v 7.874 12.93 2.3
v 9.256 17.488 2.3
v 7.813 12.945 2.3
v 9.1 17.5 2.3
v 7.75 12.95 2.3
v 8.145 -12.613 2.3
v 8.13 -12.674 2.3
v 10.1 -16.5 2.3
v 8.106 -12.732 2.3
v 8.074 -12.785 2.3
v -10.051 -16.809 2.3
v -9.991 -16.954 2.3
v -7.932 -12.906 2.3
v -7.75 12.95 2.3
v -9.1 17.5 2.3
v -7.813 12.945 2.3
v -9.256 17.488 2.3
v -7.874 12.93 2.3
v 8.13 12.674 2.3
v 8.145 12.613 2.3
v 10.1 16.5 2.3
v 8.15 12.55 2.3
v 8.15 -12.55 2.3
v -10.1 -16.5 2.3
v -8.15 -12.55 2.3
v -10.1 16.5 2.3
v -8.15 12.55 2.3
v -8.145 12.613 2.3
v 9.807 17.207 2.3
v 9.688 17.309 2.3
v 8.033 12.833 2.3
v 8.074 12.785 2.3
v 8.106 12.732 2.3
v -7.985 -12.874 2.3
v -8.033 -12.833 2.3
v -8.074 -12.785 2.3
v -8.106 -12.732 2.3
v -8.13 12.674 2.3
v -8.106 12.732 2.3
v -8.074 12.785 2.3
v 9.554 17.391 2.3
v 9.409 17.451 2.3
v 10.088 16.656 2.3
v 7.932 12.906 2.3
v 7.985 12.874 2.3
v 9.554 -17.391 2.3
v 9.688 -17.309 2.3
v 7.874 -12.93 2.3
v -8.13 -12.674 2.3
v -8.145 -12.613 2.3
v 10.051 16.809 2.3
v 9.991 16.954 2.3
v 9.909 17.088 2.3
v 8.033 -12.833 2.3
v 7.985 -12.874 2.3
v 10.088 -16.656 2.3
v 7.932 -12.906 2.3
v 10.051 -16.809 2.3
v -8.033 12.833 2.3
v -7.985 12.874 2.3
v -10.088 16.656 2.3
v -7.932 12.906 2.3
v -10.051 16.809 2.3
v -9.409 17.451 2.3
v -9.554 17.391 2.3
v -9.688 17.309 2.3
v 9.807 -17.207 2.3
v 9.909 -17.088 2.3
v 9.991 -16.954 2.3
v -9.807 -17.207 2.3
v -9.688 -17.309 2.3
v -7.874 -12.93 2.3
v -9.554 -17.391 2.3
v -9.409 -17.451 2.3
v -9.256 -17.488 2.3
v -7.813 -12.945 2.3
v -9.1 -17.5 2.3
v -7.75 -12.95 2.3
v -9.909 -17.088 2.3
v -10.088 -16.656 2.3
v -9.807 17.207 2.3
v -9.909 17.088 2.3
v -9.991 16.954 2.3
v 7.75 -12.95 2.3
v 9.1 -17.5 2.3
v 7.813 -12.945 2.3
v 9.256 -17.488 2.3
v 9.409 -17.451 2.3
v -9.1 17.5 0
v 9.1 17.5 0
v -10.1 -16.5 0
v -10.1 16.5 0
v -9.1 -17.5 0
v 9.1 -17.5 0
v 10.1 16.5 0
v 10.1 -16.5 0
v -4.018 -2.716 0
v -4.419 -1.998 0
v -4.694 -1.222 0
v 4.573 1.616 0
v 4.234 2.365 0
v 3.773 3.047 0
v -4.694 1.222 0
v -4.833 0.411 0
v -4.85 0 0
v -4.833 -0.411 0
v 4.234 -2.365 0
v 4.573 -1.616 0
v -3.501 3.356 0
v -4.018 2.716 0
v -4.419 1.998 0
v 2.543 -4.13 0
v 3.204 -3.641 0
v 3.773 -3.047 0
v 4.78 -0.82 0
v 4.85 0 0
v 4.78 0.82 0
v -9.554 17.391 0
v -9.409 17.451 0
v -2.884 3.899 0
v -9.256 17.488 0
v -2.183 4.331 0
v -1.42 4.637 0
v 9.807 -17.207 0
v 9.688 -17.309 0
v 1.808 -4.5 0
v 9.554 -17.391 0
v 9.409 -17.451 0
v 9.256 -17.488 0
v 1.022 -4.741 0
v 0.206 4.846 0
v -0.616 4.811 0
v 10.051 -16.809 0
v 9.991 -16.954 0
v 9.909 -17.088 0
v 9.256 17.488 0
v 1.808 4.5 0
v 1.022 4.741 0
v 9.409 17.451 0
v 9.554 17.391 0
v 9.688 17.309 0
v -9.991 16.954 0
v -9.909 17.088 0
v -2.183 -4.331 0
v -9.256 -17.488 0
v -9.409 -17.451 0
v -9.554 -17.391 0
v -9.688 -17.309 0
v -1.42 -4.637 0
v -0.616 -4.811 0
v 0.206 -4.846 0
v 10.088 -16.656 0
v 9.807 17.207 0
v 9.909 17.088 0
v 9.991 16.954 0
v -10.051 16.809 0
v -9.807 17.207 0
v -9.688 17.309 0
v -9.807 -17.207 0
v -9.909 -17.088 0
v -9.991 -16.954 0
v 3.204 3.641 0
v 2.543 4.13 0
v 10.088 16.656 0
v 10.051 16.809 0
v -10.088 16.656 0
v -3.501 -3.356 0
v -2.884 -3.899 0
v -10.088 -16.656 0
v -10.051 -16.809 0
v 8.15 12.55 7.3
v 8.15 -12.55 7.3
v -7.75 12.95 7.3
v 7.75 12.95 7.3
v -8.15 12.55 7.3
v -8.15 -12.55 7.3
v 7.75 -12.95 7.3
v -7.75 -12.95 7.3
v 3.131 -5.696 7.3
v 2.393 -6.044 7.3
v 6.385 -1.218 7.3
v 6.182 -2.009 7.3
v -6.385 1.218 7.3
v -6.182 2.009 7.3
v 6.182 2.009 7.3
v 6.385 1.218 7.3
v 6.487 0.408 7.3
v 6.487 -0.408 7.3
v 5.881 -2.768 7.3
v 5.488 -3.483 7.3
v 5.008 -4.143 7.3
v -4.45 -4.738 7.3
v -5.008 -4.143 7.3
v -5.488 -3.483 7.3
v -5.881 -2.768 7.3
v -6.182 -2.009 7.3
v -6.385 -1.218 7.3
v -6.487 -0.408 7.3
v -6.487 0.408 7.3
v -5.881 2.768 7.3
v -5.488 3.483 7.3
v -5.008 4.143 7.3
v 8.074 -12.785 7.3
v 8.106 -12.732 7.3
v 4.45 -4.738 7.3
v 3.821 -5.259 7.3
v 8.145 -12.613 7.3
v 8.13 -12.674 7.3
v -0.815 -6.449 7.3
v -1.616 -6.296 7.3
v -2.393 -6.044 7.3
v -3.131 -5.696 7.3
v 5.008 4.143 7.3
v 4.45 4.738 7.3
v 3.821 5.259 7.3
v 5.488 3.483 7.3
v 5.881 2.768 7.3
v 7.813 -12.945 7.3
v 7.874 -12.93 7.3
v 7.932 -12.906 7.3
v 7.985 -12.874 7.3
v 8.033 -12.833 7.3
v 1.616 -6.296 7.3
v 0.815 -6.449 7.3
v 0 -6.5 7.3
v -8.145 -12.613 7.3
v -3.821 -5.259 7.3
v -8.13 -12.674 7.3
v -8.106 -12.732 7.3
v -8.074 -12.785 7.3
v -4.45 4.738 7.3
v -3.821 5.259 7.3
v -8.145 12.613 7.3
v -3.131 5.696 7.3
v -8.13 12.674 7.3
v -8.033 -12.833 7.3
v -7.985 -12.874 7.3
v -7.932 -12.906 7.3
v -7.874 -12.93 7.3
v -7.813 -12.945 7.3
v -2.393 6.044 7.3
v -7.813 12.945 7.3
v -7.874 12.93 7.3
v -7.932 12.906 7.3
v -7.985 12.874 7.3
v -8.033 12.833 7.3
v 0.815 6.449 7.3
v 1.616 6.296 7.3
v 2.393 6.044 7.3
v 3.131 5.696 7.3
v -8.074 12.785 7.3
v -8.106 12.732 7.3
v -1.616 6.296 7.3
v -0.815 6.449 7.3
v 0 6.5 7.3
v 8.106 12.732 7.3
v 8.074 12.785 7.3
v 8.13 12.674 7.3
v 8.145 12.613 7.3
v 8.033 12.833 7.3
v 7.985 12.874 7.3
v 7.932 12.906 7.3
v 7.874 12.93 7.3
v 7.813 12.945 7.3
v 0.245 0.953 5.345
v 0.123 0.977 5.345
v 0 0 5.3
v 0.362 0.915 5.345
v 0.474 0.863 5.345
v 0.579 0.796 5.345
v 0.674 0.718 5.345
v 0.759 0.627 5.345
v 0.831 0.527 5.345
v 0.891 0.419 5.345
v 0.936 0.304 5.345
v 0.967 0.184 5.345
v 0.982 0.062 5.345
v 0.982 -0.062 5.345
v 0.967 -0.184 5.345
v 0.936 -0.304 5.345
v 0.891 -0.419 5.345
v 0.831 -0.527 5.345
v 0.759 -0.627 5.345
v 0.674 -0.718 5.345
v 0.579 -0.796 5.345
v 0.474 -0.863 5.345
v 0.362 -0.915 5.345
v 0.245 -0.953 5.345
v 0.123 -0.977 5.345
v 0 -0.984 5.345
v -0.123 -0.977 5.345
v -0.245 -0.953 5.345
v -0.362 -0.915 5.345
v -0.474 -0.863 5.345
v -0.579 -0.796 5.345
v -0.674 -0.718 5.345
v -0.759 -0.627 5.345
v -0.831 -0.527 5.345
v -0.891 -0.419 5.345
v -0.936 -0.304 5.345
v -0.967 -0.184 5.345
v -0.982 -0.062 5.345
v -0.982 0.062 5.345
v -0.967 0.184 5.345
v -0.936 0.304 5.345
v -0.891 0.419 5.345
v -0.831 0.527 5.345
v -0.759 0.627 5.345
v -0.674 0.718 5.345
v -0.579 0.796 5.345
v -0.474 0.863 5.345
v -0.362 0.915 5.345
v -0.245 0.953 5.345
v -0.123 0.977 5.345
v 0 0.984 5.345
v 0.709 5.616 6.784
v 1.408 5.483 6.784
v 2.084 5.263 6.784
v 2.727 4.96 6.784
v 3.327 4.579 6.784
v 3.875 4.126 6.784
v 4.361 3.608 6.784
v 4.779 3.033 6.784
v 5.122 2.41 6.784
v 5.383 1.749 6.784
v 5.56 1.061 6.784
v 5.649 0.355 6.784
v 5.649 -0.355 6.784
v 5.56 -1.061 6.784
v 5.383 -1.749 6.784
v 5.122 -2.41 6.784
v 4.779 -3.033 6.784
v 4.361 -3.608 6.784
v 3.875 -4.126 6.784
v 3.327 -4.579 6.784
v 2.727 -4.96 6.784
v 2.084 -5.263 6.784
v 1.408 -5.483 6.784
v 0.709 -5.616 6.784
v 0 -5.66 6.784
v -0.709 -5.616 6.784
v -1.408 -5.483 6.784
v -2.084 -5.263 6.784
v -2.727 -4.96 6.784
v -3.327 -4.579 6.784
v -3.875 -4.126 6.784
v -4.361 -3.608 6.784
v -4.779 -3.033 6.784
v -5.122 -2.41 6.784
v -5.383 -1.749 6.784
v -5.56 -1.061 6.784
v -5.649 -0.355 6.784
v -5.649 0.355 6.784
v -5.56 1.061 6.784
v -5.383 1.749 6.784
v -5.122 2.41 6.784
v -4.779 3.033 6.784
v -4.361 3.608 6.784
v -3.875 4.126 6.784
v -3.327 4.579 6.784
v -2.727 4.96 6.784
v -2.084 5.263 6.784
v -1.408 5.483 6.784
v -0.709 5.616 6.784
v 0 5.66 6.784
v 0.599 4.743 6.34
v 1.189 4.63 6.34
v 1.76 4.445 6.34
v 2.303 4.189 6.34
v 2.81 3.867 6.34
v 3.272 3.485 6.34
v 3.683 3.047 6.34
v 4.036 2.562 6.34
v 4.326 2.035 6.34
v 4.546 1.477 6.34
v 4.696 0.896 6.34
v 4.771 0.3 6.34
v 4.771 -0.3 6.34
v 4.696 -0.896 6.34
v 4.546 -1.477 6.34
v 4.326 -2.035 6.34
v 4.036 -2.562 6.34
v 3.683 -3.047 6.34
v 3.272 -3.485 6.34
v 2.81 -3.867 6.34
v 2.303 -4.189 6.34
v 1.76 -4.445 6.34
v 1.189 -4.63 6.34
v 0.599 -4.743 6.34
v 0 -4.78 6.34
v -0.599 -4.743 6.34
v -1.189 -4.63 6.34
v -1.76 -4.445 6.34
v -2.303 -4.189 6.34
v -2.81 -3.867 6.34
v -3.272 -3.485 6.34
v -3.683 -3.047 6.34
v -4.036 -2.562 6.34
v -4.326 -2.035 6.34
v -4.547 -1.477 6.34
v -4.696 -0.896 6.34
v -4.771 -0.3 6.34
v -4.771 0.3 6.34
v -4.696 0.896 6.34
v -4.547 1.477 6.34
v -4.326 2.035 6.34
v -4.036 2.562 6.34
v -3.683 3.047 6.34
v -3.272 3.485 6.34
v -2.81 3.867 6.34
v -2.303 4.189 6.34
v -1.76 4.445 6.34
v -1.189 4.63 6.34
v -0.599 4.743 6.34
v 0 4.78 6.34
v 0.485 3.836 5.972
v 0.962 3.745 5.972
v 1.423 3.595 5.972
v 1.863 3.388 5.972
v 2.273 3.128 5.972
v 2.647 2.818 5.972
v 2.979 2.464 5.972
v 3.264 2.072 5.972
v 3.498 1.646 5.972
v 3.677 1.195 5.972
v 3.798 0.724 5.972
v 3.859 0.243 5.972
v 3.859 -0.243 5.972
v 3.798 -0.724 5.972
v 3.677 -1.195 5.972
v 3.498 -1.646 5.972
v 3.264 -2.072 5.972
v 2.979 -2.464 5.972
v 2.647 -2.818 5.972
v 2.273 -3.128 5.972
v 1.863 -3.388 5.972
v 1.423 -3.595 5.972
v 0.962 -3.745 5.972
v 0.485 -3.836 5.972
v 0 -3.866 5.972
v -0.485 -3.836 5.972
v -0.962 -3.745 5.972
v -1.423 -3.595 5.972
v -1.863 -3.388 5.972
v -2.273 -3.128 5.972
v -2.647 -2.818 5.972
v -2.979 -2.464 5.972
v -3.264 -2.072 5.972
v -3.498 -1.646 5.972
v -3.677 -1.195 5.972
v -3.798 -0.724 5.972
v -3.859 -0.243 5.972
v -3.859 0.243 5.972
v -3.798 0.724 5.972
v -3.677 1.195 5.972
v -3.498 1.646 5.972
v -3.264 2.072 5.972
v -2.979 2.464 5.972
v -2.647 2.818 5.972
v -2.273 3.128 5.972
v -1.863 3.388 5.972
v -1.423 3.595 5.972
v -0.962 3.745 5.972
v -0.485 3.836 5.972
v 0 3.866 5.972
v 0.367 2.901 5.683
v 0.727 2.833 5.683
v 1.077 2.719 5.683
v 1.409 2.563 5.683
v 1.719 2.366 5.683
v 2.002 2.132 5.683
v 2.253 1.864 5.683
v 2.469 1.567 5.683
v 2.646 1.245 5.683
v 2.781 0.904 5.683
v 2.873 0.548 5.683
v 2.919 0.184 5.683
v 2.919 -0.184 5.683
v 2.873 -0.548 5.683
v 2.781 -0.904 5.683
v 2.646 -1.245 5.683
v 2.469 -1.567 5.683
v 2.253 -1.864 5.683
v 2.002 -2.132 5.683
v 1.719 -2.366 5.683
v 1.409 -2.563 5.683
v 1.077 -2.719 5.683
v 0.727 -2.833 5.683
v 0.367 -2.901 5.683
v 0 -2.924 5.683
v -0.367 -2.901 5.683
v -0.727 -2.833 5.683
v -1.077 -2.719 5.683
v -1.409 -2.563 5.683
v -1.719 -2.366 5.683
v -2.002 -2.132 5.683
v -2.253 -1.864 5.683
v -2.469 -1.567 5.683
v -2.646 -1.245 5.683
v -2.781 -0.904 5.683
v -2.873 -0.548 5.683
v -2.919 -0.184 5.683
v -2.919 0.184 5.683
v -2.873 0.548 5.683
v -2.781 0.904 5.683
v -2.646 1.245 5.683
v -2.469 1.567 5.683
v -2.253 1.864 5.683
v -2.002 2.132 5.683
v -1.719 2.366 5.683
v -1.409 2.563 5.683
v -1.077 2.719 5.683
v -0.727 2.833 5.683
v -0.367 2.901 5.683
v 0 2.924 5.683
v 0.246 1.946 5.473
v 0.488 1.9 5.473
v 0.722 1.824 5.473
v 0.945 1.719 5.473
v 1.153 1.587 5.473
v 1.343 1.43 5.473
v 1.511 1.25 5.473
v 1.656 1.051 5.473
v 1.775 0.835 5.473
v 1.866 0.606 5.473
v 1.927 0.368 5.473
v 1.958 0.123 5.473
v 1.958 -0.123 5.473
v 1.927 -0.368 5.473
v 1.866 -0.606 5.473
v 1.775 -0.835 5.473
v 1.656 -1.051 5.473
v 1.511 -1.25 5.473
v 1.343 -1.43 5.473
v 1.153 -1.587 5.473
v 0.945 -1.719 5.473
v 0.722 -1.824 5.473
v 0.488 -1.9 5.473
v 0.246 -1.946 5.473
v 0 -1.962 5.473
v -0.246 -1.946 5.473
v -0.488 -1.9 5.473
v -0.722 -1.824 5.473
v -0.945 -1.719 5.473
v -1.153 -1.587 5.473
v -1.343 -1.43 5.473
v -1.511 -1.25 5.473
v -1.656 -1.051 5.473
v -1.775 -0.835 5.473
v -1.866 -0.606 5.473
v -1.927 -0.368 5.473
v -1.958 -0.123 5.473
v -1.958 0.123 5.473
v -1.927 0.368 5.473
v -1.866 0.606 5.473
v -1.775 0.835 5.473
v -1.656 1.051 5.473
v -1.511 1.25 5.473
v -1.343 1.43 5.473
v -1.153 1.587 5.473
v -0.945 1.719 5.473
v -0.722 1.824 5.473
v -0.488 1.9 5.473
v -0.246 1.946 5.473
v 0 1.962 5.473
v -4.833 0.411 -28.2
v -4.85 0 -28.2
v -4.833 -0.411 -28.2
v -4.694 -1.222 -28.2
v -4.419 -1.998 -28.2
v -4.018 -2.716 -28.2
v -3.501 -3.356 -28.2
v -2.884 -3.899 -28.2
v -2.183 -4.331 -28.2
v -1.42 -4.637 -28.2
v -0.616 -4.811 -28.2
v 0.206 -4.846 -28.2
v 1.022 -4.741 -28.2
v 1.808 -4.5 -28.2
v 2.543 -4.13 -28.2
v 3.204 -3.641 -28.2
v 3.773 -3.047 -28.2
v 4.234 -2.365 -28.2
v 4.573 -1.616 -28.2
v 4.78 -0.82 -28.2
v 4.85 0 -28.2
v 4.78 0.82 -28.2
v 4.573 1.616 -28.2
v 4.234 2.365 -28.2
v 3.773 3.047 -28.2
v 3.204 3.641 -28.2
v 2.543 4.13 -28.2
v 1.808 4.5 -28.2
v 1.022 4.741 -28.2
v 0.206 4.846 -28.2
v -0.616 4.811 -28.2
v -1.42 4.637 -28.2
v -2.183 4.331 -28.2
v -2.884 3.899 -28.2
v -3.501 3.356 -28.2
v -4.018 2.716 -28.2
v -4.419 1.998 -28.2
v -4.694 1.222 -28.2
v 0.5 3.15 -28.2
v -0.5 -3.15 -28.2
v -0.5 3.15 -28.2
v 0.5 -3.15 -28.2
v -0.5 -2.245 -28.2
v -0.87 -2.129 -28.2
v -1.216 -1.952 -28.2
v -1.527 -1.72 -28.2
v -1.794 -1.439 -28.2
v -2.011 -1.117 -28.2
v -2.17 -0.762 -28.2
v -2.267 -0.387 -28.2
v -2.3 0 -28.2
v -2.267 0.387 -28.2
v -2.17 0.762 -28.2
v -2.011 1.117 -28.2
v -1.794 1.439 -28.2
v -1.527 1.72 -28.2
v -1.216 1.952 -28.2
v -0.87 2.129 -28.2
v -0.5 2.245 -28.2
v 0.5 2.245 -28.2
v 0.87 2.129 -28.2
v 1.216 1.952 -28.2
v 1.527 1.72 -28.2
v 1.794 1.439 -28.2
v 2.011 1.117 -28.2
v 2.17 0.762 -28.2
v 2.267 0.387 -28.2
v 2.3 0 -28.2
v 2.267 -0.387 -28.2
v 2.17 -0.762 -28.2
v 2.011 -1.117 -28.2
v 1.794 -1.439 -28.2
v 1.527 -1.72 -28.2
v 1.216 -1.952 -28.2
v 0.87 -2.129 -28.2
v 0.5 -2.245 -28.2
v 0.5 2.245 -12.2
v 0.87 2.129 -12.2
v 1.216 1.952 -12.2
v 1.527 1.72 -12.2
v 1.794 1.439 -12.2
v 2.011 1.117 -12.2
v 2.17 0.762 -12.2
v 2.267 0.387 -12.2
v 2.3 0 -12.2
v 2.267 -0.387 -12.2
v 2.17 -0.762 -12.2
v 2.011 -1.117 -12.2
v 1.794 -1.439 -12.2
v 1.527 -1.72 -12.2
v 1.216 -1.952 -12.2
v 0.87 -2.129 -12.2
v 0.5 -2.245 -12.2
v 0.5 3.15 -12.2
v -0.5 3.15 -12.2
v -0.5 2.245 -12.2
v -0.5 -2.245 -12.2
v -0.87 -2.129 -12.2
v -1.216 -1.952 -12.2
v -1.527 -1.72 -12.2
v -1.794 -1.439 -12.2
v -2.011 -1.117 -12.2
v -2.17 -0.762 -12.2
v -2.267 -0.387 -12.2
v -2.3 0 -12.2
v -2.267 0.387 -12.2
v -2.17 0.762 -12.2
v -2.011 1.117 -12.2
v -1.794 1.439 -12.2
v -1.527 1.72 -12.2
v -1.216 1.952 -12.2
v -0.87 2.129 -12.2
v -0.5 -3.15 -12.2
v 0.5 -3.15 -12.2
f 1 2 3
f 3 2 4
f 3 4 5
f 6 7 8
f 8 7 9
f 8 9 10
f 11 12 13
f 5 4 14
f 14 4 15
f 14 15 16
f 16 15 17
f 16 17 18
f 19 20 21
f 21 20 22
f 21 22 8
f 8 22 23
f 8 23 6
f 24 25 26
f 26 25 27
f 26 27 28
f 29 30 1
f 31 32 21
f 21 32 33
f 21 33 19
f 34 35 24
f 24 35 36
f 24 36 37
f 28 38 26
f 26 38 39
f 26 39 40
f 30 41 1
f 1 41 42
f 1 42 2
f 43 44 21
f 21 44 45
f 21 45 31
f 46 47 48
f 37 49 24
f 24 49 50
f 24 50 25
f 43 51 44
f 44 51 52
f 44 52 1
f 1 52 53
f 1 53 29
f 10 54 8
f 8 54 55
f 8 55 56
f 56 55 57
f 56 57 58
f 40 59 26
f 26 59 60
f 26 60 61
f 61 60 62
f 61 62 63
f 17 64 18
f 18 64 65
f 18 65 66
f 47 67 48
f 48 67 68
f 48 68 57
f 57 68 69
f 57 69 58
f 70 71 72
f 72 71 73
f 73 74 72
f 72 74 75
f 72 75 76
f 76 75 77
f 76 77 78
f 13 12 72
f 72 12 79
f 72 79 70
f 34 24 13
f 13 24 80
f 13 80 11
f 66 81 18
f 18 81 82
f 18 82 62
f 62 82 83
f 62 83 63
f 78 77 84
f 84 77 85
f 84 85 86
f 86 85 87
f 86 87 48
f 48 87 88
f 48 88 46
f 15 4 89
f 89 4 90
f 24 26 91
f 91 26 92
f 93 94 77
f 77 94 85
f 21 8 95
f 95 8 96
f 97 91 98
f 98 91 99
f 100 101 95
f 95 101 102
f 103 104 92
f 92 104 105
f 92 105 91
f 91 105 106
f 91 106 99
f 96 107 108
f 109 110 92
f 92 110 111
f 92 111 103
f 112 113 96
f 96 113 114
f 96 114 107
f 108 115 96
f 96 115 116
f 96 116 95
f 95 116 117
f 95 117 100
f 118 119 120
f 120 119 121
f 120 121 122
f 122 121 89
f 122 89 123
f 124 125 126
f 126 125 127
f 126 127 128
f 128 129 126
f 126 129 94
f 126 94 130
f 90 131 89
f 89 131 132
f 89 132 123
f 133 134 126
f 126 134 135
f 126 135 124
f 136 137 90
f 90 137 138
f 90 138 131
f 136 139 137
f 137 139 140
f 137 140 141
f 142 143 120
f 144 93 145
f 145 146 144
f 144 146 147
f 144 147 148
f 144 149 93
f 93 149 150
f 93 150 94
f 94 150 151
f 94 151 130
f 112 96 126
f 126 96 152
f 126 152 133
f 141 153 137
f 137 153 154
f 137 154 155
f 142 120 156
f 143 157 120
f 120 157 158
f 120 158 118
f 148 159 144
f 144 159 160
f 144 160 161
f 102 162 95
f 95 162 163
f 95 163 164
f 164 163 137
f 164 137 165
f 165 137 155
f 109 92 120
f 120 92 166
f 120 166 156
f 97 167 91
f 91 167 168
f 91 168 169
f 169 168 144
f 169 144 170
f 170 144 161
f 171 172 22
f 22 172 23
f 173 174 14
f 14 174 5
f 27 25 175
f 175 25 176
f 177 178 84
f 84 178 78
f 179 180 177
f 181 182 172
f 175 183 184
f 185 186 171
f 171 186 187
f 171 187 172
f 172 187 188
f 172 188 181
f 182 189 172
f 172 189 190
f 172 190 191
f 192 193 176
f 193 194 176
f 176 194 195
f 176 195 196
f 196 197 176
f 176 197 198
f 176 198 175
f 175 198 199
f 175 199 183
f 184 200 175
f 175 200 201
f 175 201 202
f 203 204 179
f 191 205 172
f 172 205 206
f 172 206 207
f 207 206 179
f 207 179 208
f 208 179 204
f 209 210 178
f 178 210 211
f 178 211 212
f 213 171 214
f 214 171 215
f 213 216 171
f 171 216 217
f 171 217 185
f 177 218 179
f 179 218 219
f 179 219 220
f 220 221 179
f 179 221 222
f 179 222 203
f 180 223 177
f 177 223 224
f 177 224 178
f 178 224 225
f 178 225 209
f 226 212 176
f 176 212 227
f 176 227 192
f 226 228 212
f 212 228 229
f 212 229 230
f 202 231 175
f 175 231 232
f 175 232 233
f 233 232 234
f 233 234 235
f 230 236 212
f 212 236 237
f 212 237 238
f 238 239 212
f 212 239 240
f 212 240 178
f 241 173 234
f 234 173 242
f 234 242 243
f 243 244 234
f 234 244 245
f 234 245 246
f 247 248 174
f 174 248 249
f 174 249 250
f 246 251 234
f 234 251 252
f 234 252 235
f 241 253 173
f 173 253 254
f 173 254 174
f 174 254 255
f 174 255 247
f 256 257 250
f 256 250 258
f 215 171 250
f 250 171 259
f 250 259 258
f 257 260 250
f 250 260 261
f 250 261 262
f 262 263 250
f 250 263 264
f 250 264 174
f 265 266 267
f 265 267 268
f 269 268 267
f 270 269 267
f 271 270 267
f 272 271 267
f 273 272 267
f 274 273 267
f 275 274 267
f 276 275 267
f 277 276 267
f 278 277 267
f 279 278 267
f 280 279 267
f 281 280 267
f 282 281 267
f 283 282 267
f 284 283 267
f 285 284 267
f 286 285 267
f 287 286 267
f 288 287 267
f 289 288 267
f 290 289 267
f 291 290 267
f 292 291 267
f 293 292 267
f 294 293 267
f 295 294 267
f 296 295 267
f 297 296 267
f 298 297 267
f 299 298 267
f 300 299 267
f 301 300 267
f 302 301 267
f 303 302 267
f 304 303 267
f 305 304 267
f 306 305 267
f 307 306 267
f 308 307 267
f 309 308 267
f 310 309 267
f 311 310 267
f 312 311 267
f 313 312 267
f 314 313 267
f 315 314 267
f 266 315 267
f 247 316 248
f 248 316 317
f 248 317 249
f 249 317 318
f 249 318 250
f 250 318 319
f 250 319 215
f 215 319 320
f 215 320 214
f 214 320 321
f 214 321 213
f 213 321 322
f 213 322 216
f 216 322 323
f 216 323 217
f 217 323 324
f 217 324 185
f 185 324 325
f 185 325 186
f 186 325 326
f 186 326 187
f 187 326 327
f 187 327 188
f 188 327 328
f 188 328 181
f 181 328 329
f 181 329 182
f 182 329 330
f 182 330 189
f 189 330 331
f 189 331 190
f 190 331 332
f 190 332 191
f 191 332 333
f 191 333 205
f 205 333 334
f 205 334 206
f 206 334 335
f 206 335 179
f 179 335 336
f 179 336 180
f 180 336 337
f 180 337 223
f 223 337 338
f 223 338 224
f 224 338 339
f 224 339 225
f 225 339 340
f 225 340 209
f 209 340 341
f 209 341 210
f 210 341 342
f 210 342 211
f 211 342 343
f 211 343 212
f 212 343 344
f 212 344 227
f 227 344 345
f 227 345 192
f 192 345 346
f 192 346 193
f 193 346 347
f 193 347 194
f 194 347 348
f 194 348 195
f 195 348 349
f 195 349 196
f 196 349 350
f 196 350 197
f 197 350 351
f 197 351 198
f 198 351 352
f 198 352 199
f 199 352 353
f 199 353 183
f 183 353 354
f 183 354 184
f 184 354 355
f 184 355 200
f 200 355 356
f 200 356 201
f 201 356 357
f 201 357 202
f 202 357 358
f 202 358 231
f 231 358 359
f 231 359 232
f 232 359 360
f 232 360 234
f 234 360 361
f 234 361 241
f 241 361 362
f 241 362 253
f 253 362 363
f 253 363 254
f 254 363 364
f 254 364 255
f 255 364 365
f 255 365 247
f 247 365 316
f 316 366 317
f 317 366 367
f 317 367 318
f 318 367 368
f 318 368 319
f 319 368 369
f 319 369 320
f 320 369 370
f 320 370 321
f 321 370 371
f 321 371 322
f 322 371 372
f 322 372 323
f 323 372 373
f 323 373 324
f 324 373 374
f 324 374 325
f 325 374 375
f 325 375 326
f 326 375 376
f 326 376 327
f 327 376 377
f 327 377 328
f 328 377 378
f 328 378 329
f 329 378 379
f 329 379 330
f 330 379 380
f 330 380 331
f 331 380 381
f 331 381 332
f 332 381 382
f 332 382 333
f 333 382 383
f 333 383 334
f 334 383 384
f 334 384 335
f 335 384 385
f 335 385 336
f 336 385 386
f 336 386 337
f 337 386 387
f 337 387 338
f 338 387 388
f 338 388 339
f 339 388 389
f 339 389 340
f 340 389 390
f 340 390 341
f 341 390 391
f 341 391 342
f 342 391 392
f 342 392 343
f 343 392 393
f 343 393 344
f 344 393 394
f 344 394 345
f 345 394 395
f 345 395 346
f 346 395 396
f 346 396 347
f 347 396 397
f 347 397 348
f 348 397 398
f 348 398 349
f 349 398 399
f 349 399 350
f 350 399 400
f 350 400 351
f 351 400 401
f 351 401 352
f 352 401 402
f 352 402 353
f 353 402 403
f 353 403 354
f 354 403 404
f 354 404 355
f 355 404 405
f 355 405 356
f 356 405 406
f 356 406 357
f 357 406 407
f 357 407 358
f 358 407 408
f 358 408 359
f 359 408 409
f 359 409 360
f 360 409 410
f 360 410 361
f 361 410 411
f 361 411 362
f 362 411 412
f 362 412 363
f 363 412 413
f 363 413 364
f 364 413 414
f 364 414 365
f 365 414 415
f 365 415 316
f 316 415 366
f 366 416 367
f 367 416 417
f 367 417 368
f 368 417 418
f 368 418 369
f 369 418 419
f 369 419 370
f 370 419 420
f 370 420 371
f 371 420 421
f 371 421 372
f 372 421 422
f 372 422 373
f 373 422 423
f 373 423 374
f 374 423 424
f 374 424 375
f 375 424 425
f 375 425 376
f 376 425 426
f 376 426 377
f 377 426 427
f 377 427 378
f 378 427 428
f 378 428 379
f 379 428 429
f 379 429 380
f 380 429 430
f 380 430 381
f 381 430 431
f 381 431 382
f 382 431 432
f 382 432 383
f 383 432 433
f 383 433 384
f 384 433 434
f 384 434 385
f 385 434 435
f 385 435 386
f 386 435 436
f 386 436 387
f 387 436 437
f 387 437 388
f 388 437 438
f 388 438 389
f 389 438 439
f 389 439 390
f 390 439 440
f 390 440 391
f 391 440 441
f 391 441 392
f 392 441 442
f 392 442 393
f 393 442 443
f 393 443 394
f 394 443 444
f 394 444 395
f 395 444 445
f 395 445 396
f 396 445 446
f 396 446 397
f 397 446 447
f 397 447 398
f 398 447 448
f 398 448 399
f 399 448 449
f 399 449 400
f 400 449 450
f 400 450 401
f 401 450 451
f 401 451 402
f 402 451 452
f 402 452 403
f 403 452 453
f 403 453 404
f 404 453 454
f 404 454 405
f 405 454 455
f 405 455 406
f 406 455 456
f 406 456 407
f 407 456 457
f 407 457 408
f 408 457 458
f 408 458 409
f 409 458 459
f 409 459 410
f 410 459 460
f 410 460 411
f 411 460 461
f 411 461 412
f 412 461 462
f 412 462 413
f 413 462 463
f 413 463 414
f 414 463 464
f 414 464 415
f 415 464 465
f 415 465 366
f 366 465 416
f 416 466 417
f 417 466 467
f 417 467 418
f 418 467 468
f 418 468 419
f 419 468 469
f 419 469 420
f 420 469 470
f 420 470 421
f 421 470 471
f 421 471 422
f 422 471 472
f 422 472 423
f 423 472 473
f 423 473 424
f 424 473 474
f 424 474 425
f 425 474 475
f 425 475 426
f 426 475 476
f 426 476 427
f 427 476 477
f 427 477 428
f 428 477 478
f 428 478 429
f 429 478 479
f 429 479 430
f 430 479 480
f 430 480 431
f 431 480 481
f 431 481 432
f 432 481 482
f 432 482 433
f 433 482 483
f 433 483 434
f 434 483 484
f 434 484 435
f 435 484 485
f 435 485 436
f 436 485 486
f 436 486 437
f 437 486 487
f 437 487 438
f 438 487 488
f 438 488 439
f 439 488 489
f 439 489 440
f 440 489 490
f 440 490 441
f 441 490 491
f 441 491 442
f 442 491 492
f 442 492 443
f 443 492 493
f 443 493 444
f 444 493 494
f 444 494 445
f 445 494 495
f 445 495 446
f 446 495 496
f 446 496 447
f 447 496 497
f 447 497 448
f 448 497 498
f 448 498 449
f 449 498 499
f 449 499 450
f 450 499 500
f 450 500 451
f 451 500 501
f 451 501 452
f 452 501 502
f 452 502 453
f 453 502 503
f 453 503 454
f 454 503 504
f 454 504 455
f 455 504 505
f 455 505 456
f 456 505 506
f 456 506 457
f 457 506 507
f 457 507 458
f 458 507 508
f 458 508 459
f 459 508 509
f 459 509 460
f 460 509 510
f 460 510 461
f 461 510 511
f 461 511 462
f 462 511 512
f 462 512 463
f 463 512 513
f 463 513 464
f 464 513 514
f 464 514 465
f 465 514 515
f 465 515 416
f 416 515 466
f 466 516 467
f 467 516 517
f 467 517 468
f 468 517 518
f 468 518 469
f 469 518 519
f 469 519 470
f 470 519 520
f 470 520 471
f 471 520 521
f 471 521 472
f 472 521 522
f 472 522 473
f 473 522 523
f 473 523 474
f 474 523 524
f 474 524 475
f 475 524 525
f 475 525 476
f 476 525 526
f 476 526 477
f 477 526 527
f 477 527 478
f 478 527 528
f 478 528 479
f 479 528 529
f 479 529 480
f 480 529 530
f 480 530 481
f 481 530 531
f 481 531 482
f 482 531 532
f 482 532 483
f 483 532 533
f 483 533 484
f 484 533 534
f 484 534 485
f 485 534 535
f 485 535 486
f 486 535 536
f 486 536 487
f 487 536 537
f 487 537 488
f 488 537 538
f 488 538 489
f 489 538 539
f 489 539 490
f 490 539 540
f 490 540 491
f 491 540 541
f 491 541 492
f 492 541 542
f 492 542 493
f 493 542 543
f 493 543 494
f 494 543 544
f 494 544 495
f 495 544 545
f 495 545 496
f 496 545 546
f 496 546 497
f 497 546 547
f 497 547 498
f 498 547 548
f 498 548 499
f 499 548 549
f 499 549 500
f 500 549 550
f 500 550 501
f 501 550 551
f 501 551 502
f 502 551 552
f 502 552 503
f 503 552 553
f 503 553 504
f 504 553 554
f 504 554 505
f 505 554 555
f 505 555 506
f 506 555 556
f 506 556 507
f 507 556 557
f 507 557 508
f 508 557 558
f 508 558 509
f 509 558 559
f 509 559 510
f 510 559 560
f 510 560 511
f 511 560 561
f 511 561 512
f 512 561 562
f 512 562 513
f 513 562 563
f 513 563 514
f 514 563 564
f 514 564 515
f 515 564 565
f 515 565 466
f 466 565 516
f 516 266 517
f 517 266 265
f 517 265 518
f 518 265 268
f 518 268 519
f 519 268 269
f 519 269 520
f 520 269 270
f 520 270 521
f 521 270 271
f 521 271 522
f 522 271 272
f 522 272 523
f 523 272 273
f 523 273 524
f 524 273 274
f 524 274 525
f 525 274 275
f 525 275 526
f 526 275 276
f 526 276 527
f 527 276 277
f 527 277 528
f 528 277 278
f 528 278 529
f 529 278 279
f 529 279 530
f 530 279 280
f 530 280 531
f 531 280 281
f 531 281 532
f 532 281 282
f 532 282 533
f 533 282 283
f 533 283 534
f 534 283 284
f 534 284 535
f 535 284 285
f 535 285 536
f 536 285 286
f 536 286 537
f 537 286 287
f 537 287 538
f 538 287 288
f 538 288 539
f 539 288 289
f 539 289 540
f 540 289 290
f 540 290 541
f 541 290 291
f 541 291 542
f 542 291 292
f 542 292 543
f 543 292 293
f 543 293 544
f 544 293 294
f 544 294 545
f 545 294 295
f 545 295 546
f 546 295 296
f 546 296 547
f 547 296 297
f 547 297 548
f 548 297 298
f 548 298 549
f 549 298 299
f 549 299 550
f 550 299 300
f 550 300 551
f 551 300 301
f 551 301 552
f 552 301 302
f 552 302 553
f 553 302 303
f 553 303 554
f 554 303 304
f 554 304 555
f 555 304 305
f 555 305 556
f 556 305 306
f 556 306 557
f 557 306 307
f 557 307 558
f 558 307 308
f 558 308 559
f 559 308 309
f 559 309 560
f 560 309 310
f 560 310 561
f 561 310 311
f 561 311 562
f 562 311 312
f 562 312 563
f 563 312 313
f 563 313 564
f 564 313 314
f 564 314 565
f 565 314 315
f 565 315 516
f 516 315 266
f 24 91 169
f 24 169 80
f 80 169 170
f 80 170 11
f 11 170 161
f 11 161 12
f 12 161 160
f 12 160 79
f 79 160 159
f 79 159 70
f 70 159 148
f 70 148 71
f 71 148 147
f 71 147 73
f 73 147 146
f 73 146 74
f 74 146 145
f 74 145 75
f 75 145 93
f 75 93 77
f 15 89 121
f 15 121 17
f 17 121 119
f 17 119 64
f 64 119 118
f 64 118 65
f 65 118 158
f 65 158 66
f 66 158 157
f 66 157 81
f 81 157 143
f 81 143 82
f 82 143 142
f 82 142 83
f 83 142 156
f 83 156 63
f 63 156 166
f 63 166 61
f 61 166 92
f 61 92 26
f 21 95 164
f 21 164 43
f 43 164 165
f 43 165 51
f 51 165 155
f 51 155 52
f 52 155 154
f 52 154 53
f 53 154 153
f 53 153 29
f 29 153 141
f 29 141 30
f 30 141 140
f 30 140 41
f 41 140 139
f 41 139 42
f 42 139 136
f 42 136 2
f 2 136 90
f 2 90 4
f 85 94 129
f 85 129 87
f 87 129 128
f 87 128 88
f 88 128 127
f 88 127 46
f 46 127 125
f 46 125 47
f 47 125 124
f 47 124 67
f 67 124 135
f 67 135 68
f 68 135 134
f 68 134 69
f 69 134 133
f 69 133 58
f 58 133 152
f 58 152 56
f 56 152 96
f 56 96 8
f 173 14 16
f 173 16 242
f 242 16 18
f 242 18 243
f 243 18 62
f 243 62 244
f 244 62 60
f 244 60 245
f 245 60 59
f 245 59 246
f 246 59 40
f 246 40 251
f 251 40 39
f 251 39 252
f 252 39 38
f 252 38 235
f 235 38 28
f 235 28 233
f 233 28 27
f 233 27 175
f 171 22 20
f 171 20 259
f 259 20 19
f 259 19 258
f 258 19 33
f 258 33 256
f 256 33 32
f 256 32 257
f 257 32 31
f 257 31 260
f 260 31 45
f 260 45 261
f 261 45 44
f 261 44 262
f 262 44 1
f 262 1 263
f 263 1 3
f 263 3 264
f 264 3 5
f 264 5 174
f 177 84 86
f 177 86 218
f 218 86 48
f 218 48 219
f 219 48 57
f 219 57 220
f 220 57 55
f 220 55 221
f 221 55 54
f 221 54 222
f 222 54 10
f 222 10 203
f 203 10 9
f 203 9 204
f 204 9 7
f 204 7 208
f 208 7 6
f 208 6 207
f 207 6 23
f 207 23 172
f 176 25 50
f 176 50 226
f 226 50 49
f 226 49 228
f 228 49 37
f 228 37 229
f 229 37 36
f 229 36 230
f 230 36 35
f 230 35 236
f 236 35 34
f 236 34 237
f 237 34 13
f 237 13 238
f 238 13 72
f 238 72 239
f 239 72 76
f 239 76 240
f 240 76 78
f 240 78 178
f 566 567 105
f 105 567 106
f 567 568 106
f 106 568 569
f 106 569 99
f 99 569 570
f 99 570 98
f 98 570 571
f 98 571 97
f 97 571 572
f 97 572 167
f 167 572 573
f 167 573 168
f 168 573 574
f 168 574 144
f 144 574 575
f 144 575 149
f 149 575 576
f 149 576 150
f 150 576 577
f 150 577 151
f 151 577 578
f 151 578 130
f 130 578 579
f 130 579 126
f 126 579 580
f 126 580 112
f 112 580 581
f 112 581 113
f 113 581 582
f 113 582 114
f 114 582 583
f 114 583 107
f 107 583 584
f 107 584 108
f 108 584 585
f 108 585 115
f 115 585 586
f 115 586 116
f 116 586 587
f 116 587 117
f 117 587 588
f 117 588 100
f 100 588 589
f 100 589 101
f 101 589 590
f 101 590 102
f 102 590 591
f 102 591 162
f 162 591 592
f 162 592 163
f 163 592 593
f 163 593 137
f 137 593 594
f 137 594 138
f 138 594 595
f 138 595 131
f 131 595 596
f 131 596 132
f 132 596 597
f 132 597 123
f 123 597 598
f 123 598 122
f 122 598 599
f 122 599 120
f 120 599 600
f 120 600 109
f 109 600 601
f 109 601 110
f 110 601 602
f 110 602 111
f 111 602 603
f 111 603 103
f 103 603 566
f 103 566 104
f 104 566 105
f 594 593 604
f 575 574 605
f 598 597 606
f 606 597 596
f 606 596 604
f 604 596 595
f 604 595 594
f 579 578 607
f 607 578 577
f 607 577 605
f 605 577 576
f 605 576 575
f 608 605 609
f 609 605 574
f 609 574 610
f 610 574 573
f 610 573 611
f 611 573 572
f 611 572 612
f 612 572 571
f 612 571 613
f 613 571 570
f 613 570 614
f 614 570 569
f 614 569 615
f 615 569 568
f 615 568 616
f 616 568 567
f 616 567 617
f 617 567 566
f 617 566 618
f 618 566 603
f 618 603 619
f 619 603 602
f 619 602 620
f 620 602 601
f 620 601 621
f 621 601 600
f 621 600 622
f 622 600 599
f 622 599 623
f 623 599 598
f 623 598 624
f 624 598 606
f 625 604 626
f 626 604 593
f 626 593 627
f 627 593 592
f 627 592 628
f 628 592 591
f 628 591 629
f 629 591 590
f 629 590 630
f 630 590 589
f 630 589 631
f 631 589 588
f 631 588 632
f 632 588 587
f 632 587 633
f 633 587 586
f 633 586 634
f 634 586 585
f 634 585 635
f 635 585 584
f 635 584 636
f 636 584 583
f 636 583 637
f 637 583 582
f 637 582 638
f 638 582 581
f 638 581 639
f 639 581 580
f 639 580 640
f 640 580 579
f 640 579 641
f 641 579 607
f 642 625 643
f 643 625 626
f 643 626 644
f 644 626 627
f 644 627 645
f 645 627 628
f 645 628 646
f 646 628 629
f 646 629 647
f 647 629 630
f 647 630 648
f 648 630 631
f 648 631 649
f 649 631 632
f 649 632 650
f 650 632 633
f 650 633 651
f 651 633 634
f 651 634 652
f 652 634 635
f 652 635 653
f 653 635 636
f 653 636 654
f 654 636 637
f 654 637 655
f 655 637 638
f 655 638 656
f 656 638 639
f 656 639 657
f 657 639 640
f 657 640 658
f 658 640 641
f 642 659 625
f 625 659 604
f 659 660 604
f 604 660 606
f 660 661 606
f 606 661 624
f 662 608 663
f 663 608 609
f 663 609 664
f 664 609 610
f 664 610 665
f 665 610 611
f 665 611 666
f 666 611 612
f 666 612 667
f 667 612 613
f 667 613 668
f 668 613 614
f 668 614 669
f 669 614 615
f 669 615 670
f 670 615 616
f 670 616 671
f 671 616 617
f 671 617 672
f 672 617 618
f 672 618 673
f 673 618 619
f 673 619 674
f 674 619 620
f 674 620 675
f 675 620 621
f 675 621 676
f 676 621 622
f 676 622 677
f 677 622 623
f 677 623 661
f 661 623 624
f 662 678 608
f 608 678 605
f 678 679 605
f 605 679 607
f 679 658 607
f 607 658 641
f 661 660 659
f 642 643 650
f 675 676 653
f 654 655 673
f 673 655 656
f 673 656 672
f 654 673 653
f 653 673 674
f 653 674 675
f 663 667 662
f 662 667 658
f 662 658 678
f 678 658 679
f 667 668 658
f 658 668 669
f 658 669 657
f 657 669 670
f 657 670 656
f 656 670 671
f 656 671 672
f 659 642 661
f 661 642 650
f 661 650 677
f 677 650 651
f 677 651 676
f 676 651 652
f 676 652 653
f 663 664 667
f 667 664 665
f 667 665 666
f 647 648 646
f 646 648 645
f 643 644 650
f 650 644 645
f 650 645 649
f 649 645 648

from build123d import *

# Parameters (mm, degrees)
SKETCH1_W           = 35
SKETCH1_H           = 20.2
BOSS_EXTRUDE1_DEPTH = 2.3
SKETCH2_W           = 16.3
SKETCH2_H           = 25.9
BOSS_EXTRUDE2_DEPTH = 5
FILLET2_R           = 1
FILLET3_R           = 0.4
SKETCH5_R           = 4.85
BOSS_EXTRUDE3_DEPTH = 28.2
CUT_EXTRUDE3_DEPTH  = 16


with BuildPart() as part:
    # Sketch1 → Boss-Extrude1 (new body)
    with BuildSketch(Plane(origin=(0, 0, 0), x_dir=(0, 1, 0), z_dir=(0, 0, 1))):
        Rectangle(SKETCH1_W, SKETCH1_H)
    extrude(amount=BOSS_EXTRUDE1_DEPTH)

    # Sketch2 → Boss-Extrude2 (add)
    with BuildSketch(Plane.XY.offset(2.3)):
        Rectangle(SKETCH2_W, SKETCH2_H)
    extrude(amount=BOSS_EXTRUDE2_DEPTH)

    # Sketch4 → Cut-Revolve1 (revolve, cut)
    with BuildSketch(Plane.YZ):
        with BuildLine():
            Line((0, 7.3), (-6.5, 7.3))
            ThreePointArc((-6.5, 7.3), (-3.398426688, 5.817613265), (0, 5.3))
            Line((0, 5.3), (0, 7.3))
        make_face()
    revolve(axis=Axis((0, 0, 0), (0, 0, 1)), mode=Mode.SUBTRACT)

    # Fillet2
    fillet2_edges = [part.edges().sort_by_distance(p)[0] for p in [
        (10.1, 17.5, 1.15),
        (10.1, -17.5, 1.15),
        (-10.1, -17.5, 1.15),
        (-10.1, 17.5, 1.15),
    ]]
    fillet(fillet2_edges, radius=FILLET2_R)

    # Fillet3
    fillet3_edges = [part.edges().sort_by_distance(p)[0] for p in [
        (8.15, -12.95, 4.8),
        (8.15, 12.95, 4.8),
        (-8.15, 12.95, 4.8),
        (-8.15, -12.95, 4.8),
    ]]
    fillet(fillet3_edges, radius=FILLET3_R)

    # Sketch5 → Boss-Extrude3 (add)
    with BuildSketch(Plane(origin=(0, 0, 0), x_dir=(1, 0, 0), z_dir=(0, 0, -1))):
        Circle(SKETCH5_R)
    extrude(amount=BOSS_EXTRUDE3_DEPTH)

    # Sketch6 → Cut-Extrude3 (cut)
    with BuildSketch(Plane(origin=(0, 0, -28.2), x_dir=(1, 0, 0), z_dir=(0, 0, -1))):
        with BuildLine():
            Line((-0.5, 3.15), (-0.5, 2.244994432))
            ThreePointArc((-0.5, 2.244994432), (0, 2.3), (0.5, 2.244994432))
            Line((0.5, 2.244994432), (0.5, 3.15))
            Line((0.5, 3.15), (-0.5, 3.15))
        make_face()
        with BuildLine():
            Line((0.5, 1.45), (-0.5, 1.45))
            Line((-0.5, 1.45), (-0.5, 2.244994432))
            ThreePointArc((-0.5, 2.244994432), (-2.3, 0), (-0.5, -2.244994432))
            Line((-0.5, -2.244994432), (-0.5, -1.45))
            Line((-0.5, -1.45), (0.5, -1.45))
            Line((0.5, -1.45), (0.5, -2.244994432))
            ThreePointArc((0.5, -2.244994432), (1.794435844, -1.438749457), (2.3, 0))
            ThreePointArc((2.3, 0), (1.794435844, 1.438749457), (0.5, 2.244994432))
            Line((0.5, 2.244994432), (0.5, 1.45))
        make_face()
        with BuildLine():
            ThreePointArc((0.5, -2.244994432), (0, -2.3), (-0.5, -2.244994432))
            Line((-0.5, -2.244994432), (-0.5, -3.15))
            Line((-0.5, -3.15), (0.5, -3.15))
            Line((0.5, -3.15), (0.5, -2.244994432))
        make_face()
        with BuildLine():
            Line((-0.5, 2.244994432), (-0.5, 1.45))
            Line((-0.5, 1.45), (0.5, 1.45))
            Line((0.5, 1.45), (0.5, 2.244994432))
            ThreePointArc((0.5, 2.244994432), (0, 2.3), (-0.5, 2.244994432))
        make_face()
        with BuildLine():
            Line((-0.5, -1.45), (-0.5, -2.244994432))
            ThreePointArc((-0.5, -2.244994432), (0, -2.3), (0.5, -2.244994432))
            Line((0.5, -2.244994432), (0.5, -1.45))
            Line((0.5, -1.45), (-0.5, -1.45))
        make_face()
    extrude(amount=-CUT_EXTRUDE3_DEPTH, mode=Mode.SUBTRACT)


solid = part.part
